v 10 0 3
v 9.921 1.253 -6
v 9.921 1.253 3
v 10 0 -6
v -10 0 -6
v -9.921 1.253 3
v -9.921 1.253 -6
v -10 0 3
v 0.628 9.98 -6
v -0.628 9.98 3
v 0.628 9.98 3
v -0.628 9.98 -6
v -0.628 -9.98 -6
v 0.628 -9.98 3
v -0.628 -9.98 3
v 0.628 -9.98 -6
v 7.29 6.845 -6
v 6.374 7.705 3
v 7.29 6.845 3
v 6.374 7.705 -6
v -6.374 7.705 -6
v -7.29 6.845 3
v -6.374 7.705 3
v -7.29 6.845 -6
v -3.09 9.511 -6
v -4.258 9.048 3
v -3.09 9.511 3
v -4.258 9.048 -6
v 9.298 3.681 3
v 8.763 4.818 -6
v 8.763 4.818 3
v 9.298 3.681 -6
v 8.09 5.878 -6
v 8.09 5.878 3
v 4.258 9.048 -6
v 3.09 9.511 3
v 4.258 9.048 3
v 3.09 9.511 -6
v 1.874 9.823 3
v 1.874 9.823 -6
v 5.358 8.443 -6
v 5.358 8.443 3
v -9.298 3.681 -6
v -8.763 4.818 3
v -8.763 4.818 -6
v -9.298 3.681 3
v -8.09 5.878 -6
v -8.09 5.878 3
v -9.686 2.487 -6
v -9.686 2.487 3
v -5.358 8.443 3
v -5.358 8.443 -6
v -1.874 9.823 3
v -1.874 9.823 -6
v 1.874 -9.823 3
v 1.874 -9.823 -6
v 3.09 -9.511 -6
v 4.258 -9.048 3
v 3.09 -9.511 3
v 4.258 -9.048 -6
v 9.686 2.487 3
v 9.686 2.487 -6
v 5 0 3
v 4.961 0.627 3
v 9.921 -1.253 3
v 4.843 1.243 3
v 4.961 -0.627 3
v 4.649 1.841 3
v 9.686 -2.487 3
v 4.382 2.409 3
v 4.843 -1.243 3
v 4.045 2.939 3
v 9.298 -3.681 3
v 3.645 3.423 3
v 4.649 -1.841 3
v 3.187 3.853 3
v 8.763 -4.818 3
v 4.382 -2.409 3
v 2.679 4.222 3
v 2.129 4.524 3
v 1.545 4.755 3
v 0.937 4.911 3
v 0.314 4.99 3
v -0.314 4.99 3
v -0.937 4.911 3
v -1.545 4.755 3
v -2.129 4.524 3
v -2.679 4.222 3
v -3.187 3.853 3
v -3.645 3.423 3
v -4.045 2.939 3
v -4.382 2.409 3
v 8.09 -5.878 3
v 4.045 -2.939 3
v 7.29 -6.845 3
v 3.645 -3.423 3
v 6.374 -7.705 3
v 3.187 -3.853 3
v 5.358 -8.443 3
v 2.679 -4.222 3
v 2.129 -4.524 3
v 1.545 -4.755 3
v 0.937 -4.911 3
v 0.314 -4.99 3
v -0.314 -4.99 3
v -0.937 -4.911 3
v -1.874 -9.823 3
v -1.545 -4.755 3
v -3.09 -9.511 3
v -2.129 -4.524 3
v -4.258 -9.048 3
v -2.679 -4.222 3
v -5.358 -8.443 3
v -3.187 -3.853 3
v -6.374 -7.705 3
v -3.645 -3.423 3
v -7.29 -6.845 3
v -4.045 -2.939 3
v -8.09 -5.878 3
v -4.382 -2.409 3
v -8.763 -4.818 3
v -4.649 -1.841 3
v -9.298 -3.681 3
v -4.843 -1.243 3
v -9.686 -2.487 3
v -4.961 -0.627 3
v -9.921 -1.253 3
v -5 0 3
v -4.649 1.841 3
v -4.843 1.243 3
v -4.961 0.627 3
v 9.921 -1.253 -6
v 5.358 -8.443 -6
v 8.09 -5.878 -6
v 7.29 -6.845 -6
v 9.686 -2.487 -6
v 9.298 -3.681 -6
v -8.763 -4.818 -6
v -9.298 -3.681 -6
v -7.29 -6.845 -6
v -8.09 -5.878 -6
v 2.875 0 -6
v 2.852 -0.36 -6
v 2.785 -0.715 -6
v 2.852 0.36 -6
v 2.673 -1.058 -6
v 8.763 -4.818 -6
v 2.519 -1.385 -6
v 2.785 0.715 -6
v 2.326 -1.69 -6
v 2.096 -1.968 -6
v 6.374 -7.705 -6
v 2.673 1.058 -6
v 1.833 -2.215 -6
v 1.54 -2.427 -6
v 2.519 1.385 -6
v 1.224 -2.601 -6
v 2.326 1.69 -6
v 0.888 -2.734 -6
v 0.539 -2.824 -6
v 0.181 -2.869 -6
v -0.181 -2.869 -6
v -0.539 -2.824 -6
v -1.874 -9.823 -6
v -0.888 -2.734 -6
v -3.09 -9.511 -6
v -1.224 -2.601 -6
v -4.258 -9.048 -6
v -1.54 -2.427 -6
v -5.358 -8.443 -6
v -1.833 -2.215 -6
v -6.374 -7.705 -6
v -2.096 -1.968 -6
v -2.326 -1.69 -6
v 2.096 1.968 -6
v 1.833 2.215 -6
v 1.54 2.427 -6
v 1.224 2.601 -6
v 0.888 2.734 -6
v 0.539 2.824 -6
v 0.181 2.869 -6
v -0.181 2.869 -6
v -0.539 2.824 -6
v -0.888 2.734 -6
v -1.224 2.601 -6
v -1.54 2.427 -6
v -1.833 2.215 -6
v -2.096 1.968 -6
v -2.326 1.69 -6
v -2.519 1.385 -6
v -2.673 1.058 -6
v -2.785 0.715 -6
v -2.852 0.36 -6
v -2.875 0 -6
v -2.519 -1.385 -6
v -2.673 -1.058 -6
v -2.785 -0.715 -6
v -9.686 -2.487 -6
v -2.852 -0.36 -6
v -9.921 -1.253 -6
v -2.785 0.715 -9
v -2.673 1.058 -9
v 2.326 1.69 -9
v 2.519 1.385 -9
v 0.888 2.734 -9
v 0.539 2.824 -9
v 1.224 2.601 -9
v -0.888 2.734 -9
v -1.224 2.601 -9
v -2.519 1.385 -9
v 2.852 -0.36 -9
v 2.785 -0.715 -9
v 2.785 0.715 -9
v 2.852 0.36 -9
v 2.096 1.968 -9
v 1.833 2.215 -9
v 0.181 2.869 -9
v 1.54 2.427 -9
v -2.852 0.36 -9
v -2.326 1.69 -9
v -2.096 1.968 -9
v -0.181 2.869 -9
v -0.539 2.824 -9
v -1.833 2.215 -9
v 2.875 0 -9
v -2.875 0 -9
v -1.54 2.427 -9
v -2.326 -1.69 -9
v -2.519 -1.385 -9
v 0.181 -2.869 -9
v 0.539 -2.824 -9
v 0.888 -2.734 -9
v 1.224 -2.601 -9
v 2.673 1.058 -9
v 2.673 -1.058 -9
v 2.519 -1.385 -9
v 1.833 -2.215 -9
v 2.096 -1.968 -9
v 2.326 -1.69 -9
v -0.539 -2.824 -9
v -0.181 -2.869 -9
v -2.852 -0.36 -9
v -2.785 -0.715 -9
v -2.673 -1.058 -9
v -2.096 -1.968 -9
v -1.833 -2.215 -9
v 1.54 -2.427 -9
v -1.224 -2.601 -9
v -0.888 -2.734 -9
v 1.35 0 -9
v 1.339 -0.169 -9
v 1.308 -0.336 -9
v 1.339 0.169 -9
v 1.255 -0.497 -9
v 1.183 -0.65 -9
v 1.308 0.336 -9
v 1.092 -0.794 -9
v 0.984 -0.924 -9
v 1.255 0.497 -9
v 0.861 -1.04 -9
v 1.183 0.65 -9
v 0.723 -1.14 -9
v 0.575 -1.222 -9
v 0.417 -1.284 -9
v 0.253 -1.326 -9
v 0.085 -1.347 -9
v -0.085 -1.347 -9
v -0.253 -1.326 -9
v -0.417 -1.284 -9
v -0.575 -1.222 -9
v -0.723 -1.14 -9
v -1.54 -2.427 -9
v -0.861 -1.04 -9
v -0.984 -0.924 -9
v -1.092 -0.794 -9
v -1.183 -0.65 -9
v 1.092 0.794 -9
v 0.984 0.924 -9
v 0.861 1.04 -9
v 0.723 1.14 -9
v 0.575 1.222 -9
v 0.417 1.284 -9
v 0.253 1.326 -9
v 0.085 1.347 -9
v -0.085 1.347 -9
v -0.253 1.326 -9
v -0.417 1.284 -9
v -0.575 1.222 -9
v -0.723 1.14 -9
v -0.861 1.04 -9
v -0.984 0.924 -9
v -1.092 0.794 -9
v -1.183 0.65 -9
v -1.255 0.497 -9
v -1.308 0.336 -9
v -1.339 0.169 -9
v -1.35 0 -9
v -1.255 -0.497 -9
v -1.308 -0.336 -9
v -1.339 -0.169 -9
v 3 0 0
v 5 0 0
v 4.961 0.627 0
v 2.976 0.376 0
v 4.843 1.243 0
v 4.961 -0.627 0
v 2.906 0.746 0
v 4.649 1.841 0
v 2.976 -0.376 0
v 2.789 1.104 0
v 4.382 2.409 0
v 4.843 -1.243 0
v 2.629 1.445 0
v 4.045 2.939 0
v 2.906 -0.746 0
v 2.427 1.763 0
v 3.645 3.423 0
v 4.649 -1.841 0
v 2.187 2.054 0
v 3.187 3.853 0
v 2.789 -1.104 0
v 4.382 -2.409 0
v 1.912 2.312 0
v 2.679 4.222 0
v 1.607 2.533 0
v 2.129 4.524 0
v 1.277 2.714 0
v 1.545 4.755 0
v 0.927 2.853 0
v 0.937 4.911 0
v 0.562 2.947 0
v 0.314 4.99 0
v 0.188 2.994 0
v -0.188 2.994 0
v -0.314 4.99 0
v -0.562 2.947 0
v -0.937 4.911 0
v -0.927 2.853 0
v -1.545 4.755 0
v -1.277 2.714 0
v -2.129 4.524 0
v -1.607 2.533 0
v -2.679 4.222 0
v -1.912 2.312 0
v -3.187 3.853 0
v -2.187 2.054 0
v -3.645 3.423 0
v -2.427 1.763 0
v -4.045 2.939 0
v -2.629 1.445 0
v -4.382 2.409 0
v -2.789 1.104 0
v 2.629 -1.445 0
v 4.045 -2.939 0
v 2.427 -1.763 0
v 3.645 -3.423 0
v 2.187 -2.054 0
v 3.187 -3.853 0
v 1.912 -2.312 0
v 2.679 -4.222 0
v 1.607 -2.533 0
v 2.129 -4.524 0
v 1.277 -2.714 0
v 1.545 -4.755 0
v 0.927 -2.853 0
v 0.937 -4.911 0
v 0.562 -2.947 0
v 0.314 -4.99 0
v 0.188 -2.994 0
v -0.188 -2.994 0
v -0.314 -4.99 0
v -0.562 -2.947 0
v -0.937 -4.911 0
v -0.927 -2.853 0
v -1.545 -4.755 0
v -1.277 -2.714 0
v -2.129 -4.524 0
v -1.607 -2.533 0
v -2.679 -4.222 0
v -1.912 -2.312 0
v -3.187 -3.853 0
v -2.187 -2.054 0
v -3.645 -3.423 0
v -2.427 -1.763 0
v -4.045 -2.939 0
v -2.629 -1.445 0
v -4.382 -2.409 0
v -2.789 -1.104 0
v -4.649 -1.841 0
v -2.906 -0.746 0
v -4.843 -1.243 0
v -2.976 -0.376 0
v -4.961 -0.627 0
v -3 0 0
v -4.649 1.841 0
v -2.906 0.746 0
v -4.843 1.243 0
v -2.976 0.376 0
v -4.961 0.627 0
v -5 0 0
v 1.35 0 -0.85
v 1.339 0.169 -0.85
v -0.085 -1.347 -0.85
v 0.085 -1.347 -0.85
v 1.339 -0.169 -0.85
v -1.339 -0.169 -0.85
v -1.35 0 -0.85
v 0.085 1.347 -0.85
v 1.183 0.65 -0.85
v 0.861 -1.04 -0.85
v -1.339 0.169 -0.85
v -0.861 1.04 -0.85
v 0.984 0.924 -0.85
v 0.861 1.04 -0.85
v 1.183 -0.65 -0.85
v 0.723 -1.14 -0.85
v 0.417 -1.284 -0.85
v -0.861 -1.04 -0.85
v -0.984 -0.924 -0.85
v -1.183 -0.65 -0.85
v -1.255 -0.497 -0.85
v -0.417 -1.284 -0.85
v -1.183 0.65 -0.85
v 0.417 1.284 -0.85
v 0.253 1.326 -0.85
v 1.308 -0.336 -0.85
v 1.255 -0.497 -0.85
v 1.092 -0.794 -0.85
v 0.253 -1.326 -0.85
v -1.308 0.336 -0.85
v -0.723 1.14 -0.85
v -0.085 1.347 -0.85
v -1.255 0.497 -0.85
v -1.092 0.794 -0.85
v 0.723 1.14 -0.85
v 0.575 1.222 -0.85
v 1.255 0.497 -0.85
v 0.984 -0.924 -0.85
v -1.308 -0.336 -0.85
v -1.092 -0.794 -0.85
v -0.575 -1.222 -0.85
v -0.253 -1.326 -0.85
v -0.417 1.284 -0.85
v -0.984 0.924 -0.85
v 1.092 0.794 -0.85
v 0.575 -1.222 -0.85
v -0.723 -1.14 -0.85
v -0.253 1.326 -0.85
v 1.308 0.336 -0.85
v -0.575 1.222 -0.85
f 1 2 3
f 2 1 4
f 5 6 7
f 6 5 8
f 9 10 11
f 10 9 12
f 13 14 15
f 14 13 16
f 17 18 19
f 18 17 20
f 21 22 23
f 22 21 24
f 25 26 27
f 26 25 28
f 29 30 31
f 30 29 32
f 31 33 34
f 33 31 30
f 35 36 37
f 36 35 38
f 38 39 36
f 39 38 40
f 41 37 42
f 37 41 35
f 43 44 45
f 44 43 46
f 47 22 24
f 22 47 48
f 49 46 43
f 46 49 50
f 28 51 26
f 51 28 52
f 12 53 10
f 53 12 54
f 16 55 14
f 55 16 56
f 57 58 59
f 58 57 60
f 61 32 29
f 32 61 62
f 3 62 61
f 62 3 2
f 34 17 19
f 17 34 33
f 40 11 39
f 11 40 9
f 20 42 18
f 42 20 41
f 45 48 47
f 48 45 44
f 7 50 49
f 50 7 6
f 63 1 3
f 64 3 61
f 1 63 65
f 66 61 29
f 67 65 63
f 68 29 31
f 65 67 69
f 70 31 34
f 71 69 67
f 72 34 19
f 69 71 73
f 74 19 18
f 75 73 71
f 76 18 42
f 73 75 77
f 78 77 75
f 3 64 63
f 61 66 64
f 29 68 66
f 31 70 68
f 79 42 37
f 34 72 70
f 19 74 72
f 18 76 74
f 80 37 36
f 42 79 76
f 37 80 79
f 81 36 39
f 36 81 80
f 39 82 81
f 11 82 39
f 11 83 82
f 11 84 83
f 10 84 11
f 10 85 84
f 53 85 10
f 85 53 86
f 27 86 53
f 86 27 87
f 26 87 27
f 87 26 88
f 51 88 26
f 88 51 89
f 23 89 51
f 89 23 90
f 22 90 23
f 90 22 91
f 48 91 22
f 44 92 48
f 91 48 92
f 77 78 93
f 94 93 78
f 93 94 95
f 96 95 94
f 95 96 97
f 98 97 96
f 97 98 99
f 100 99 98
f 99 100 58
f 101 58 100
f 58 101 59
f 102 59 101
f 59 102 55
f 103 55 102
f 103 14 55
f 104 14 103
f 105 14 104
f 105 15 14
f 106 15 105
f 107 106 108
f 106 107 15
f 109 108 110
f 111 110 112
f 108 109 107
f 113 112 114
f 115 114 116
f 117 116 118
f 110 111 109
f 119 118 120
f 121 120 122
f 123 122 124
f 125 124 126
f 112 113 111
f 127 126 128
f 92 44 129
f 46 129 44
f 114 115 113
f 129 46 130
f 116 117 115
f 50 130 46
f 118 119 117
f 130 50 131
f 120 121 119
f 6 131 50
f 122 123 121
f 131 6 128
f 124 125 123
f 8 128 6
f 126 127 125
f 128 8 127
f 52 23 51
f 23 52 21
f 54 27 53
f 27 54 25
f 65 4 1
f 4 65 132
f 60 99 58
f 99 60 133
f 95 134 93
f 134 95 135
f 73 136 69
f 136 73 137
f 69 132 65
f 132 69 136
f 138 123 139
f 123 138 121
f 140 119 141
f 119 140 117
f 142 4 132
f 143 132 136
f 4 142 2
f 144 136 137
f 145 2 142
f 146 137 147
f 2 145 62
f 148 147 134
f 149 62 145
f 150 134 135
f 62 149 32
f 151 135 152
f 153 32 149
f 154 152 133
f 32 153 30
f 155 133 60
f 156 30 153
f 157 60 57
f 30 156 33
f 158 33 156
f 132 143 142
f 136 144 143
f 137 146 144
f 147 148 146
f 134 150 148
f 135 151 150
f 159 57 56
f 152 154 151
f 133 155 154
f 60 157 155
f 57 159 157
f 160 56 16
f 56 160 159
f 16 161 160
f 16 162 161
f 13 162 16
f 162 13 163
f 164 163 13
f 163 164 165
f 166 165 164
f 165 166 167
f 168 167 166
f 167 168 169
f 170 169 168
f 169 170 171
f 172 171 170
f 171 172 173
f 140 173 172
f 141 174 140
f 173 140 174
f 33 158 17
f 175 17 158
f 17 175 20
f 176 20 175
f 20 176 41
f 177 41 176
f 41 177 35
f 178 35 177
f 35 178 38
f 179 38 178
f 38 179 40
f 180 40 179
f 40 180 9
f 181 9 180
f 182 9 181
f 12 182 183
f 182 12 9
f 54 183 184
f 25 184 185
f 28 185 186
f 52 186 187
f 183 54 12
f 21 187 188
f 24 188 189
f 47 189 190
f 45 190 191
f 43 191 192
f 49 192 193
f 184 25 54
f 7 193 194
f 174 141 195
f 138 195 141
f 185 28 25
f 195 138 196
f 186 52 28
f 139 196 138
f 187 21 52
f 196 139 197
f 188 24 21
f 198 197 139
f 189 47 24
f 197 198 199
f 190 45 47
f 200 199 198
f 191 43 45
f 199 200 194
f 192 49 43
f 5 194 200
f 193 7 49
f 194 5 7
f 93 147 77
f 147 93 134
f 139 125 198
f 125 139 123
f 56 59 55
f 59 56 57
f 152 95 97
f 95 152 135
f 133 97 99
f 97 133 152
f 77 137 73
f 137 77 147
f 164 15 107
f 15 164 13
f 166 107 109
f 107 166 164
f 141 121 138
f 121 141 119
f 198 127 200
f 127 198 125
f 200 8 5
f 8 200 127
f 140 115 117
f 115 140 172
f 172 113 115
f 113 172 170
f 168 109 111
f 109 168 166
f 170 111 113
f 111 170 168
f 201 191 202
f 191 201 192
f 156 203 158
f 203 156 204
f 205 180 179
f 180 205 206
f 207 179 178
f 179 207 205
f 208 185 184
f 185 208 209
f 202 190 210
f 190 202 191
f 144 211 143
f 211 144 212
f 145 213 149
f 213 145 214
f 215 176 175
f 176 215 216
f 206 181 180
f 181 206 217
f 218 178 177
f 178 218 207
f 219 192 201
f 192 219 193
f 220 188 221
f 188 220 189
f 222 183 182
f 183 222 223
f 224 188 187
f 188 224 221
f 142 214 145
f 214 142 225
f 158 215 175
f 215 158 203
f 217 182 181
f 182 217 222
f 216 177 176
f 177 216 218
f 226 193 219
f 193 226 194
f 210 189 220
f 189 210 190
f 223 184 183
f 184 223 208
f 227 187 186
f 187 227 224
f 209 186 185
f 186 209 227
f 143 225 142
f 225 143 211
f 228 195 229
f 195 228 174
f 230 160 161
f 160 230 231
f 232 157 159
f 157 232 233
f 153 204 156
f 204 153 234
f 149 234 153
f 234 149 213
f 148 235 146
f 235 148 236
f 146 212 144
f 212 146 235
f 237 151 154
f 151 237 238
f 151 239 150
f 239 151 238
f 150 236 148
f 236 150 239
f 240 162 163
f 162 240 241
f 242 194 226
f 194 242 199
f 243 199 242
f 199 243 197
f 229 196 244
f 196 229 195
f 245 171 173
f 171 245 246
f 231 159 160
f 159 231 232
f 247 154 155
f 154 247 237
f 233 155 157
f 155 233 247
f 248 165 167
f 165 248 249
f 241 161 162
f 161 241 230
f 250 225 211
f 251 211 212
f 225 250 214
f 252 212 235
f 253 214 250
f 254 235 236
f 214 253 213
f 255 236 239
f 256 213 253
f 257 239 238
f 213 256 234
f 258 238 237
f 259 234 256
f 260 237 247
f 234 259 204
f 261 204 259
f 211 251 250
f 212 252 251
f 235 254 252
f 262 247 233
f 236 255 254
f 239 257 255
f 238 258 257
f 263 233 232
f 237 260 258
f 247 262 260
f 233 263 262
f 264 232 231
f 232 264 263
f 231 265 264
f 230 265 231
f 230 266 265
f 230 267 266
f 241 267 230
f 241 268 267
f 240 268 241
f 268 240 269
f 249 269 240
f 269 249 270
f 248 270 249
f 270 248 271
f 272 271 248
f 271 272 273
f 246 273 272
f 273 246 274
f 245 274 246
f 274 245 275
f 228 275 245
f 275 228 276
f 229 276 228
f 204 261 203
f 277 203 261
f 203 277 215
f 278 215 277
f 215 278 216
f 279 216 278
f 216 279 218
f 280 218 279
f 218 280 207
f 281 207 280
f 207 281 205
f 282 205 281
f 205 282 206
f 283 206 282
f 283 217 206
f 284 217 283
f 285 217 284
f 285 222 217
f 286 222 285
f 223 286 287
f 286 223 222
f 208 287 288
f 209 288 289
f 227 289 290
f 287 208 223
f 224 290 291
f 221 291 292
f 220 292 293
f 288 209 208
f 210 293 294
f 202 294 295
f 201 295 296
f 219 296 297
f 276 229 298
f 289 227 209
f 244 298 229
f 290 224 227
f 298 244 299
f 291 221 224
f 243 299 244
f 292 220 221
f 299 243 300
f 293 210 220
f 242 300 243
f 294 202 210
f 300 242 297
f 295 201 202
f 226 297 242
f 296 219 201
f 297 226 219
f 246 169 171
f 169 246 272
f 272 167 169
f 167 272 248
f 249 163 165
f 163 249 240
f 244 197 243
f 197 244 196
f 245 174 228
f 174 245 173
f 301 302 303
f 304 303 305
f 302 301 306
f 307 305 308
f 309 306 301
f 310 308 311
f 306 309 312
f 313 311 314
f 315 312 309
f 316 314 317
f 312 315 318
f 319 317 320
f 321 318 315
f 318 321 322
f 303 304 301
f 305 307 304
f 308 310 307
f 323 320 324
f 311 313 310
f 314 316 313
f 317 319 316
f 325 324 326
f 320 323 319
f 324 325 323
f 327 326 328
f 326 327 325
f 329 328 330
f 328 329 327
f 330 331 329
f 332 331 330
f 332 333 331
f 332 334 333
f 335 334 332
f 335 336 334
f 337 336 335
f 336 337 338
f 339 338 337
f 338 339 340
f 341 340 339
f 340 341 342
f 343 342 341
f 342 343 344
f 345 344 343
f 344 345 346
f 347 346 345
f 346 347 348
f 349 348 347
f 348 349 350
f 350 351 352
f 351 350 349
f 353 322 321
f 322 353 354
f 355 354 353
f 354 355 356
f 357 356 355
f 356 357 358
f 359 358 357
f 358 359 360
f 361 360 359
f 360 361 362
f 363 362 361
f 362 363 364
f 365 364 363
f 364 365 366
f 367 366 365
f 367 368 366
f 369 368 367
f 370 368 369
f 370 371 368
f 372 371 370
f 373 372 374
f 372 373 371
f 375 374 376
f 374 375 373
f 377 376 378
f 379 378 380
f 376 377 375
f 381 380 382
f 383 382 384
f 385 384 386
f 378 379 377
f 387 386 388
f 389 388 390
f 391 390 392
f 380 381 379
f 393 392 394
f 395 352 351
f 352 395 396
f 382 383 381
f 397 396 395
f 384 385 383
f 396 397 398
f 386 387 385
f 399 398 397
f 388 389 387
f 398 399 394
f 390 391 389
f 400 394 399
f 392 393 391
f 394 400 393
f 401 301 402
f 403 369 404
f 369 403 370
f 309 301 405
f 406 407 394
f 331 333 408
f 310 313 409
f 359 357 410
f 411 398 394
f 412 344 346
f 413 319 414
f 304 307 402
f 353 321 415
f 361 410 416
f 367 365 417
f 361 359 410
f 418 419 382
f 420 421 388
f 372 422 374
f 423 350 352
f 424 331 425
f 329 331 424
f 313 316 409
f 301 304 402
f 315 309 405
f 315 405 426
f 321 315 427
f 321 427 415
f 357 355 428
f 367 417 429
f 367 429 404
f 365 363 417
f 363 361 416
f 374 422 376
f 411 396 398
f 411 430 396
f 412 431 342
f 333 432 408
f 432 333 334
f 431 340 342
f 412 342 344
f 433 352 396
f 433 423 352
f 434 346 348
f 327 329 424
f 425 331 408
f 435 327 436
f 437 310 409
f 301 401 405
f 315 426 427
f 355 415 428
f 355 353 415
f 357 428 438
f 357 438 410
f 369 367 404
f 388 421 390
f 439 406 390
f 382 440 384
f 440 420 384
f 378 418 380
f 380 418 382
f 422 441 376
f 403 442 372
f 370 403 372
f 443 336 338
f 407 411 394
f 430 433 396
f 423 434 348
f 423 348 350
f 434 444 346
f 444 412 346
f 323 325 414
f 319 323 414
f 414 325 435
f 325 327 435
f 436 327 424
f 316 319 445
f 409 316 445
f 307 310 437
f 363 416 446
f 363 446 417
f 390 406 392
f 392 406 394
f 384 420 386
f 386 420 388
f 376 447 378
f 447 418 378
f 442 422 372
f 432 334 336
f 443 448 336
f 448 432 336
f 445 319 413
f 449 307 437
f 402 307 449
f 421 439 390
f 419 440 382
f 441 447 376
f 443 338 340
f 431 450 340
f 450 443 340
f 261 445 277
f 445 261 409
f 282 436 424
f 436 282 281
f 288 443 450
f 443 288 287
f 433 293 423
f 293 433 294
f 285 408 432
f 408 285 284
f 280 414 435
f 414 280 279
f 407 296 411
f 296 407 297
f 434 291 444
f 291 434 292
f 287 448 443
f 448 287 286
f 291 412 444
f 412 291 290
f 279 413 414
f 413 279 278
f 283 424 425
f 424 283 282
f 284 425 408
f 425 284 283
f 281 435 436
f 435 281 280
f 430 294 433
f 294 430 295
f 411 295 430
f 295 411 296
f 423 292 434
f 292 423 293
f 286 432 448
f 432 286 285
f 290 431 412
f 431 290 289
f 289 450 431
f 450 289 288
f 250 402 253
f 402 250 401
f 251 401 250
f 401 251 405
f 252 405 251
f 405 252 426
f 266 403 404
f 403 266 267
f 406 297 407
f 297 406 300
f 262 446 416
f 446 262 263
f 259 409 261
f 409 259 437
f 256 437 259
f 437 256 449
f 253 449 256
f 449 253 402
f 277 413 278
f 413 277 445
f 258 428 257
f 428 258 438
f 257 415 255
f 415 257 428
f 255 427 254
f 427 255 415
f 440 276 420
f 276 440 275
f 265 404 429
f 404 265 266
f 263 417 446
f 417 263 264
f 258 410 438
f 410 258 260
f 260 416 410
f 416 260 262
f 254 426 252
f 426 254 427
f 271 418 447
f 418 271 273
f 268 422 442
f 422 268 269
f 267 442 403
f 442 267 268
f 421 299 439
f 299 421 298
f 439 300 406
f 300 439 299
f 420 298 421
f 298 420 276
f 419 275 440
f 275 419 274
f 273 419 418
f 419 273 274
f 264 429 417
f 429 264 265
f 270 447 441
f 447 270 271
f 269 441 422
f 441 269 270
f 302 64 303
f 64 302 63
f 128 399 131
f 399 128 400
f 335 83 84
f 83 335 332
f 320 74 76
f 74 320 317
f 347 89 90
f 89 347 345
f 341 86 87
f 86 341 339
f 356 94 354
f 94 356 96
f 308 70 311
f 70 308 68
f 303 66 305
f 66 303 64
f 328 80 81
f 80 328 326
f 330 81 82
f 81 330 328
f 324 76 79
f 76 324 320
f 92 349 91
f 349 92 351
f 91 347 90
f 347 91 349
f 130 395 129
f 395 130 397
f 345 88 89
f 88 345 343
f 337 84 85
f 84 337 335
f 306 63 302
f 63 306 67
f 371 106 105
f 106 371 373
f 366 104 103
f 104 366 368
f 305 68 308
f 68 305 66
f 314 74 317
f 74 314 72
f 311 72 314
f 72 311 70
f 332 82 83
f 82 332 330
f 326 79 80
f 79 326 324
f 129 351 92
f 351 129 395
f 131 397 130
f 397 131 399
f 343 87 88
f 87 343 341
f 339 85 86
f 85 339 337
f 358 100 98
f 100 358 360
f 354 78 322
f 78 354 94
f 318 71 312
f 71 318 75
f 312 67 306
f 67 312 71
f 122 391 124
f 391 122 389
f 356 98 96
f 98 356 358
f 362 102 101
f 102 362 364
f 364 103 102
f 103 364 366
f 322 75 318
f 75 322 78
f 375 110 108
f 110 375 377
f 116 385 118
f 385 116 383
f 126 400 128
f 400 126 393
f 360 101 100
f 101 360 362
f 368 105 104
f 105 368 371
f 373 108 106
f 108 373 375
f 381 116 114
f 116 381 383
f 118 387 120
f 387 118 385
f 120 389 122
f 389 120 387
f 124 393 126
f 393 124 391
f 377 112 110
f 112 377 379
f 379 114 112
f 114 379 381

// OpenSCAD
$fn = 50;

difference() {
	union() {
		translate(v = [0, 0, -6.0]) {
			cylinder(h = 9, r = 10.0);
		}
		#translate(v = [0, 0, -9.0]) {
			cylinder(h = 9, r = 2.875);
		}
	}
	union() {
		translate(v = [0, 0, 0]) {
			rotate(a = [0, 0, 0]) {
				difference() {
					union() {
						translate(v = [0, 0, -9.0]) {
							cylinder(h = 9, r = 1.0);
						}
						translate(v = [0, 0, -0.85]) {
							cylinder(h = 0.85, r1 = 1.35, r2 = 3.0);
						}
						translate(v = [0, 0, -9.0]) {
							cylinder(h = 9, r = 1.35);
						}
						translate(v = [0, 0, -9.0]) {
							cylinder(h = 9, r = 1.0);
						}
					}
					union();
				}
			}
		}
		#cylinder(h = 3, r = 5.0);
	}
}
